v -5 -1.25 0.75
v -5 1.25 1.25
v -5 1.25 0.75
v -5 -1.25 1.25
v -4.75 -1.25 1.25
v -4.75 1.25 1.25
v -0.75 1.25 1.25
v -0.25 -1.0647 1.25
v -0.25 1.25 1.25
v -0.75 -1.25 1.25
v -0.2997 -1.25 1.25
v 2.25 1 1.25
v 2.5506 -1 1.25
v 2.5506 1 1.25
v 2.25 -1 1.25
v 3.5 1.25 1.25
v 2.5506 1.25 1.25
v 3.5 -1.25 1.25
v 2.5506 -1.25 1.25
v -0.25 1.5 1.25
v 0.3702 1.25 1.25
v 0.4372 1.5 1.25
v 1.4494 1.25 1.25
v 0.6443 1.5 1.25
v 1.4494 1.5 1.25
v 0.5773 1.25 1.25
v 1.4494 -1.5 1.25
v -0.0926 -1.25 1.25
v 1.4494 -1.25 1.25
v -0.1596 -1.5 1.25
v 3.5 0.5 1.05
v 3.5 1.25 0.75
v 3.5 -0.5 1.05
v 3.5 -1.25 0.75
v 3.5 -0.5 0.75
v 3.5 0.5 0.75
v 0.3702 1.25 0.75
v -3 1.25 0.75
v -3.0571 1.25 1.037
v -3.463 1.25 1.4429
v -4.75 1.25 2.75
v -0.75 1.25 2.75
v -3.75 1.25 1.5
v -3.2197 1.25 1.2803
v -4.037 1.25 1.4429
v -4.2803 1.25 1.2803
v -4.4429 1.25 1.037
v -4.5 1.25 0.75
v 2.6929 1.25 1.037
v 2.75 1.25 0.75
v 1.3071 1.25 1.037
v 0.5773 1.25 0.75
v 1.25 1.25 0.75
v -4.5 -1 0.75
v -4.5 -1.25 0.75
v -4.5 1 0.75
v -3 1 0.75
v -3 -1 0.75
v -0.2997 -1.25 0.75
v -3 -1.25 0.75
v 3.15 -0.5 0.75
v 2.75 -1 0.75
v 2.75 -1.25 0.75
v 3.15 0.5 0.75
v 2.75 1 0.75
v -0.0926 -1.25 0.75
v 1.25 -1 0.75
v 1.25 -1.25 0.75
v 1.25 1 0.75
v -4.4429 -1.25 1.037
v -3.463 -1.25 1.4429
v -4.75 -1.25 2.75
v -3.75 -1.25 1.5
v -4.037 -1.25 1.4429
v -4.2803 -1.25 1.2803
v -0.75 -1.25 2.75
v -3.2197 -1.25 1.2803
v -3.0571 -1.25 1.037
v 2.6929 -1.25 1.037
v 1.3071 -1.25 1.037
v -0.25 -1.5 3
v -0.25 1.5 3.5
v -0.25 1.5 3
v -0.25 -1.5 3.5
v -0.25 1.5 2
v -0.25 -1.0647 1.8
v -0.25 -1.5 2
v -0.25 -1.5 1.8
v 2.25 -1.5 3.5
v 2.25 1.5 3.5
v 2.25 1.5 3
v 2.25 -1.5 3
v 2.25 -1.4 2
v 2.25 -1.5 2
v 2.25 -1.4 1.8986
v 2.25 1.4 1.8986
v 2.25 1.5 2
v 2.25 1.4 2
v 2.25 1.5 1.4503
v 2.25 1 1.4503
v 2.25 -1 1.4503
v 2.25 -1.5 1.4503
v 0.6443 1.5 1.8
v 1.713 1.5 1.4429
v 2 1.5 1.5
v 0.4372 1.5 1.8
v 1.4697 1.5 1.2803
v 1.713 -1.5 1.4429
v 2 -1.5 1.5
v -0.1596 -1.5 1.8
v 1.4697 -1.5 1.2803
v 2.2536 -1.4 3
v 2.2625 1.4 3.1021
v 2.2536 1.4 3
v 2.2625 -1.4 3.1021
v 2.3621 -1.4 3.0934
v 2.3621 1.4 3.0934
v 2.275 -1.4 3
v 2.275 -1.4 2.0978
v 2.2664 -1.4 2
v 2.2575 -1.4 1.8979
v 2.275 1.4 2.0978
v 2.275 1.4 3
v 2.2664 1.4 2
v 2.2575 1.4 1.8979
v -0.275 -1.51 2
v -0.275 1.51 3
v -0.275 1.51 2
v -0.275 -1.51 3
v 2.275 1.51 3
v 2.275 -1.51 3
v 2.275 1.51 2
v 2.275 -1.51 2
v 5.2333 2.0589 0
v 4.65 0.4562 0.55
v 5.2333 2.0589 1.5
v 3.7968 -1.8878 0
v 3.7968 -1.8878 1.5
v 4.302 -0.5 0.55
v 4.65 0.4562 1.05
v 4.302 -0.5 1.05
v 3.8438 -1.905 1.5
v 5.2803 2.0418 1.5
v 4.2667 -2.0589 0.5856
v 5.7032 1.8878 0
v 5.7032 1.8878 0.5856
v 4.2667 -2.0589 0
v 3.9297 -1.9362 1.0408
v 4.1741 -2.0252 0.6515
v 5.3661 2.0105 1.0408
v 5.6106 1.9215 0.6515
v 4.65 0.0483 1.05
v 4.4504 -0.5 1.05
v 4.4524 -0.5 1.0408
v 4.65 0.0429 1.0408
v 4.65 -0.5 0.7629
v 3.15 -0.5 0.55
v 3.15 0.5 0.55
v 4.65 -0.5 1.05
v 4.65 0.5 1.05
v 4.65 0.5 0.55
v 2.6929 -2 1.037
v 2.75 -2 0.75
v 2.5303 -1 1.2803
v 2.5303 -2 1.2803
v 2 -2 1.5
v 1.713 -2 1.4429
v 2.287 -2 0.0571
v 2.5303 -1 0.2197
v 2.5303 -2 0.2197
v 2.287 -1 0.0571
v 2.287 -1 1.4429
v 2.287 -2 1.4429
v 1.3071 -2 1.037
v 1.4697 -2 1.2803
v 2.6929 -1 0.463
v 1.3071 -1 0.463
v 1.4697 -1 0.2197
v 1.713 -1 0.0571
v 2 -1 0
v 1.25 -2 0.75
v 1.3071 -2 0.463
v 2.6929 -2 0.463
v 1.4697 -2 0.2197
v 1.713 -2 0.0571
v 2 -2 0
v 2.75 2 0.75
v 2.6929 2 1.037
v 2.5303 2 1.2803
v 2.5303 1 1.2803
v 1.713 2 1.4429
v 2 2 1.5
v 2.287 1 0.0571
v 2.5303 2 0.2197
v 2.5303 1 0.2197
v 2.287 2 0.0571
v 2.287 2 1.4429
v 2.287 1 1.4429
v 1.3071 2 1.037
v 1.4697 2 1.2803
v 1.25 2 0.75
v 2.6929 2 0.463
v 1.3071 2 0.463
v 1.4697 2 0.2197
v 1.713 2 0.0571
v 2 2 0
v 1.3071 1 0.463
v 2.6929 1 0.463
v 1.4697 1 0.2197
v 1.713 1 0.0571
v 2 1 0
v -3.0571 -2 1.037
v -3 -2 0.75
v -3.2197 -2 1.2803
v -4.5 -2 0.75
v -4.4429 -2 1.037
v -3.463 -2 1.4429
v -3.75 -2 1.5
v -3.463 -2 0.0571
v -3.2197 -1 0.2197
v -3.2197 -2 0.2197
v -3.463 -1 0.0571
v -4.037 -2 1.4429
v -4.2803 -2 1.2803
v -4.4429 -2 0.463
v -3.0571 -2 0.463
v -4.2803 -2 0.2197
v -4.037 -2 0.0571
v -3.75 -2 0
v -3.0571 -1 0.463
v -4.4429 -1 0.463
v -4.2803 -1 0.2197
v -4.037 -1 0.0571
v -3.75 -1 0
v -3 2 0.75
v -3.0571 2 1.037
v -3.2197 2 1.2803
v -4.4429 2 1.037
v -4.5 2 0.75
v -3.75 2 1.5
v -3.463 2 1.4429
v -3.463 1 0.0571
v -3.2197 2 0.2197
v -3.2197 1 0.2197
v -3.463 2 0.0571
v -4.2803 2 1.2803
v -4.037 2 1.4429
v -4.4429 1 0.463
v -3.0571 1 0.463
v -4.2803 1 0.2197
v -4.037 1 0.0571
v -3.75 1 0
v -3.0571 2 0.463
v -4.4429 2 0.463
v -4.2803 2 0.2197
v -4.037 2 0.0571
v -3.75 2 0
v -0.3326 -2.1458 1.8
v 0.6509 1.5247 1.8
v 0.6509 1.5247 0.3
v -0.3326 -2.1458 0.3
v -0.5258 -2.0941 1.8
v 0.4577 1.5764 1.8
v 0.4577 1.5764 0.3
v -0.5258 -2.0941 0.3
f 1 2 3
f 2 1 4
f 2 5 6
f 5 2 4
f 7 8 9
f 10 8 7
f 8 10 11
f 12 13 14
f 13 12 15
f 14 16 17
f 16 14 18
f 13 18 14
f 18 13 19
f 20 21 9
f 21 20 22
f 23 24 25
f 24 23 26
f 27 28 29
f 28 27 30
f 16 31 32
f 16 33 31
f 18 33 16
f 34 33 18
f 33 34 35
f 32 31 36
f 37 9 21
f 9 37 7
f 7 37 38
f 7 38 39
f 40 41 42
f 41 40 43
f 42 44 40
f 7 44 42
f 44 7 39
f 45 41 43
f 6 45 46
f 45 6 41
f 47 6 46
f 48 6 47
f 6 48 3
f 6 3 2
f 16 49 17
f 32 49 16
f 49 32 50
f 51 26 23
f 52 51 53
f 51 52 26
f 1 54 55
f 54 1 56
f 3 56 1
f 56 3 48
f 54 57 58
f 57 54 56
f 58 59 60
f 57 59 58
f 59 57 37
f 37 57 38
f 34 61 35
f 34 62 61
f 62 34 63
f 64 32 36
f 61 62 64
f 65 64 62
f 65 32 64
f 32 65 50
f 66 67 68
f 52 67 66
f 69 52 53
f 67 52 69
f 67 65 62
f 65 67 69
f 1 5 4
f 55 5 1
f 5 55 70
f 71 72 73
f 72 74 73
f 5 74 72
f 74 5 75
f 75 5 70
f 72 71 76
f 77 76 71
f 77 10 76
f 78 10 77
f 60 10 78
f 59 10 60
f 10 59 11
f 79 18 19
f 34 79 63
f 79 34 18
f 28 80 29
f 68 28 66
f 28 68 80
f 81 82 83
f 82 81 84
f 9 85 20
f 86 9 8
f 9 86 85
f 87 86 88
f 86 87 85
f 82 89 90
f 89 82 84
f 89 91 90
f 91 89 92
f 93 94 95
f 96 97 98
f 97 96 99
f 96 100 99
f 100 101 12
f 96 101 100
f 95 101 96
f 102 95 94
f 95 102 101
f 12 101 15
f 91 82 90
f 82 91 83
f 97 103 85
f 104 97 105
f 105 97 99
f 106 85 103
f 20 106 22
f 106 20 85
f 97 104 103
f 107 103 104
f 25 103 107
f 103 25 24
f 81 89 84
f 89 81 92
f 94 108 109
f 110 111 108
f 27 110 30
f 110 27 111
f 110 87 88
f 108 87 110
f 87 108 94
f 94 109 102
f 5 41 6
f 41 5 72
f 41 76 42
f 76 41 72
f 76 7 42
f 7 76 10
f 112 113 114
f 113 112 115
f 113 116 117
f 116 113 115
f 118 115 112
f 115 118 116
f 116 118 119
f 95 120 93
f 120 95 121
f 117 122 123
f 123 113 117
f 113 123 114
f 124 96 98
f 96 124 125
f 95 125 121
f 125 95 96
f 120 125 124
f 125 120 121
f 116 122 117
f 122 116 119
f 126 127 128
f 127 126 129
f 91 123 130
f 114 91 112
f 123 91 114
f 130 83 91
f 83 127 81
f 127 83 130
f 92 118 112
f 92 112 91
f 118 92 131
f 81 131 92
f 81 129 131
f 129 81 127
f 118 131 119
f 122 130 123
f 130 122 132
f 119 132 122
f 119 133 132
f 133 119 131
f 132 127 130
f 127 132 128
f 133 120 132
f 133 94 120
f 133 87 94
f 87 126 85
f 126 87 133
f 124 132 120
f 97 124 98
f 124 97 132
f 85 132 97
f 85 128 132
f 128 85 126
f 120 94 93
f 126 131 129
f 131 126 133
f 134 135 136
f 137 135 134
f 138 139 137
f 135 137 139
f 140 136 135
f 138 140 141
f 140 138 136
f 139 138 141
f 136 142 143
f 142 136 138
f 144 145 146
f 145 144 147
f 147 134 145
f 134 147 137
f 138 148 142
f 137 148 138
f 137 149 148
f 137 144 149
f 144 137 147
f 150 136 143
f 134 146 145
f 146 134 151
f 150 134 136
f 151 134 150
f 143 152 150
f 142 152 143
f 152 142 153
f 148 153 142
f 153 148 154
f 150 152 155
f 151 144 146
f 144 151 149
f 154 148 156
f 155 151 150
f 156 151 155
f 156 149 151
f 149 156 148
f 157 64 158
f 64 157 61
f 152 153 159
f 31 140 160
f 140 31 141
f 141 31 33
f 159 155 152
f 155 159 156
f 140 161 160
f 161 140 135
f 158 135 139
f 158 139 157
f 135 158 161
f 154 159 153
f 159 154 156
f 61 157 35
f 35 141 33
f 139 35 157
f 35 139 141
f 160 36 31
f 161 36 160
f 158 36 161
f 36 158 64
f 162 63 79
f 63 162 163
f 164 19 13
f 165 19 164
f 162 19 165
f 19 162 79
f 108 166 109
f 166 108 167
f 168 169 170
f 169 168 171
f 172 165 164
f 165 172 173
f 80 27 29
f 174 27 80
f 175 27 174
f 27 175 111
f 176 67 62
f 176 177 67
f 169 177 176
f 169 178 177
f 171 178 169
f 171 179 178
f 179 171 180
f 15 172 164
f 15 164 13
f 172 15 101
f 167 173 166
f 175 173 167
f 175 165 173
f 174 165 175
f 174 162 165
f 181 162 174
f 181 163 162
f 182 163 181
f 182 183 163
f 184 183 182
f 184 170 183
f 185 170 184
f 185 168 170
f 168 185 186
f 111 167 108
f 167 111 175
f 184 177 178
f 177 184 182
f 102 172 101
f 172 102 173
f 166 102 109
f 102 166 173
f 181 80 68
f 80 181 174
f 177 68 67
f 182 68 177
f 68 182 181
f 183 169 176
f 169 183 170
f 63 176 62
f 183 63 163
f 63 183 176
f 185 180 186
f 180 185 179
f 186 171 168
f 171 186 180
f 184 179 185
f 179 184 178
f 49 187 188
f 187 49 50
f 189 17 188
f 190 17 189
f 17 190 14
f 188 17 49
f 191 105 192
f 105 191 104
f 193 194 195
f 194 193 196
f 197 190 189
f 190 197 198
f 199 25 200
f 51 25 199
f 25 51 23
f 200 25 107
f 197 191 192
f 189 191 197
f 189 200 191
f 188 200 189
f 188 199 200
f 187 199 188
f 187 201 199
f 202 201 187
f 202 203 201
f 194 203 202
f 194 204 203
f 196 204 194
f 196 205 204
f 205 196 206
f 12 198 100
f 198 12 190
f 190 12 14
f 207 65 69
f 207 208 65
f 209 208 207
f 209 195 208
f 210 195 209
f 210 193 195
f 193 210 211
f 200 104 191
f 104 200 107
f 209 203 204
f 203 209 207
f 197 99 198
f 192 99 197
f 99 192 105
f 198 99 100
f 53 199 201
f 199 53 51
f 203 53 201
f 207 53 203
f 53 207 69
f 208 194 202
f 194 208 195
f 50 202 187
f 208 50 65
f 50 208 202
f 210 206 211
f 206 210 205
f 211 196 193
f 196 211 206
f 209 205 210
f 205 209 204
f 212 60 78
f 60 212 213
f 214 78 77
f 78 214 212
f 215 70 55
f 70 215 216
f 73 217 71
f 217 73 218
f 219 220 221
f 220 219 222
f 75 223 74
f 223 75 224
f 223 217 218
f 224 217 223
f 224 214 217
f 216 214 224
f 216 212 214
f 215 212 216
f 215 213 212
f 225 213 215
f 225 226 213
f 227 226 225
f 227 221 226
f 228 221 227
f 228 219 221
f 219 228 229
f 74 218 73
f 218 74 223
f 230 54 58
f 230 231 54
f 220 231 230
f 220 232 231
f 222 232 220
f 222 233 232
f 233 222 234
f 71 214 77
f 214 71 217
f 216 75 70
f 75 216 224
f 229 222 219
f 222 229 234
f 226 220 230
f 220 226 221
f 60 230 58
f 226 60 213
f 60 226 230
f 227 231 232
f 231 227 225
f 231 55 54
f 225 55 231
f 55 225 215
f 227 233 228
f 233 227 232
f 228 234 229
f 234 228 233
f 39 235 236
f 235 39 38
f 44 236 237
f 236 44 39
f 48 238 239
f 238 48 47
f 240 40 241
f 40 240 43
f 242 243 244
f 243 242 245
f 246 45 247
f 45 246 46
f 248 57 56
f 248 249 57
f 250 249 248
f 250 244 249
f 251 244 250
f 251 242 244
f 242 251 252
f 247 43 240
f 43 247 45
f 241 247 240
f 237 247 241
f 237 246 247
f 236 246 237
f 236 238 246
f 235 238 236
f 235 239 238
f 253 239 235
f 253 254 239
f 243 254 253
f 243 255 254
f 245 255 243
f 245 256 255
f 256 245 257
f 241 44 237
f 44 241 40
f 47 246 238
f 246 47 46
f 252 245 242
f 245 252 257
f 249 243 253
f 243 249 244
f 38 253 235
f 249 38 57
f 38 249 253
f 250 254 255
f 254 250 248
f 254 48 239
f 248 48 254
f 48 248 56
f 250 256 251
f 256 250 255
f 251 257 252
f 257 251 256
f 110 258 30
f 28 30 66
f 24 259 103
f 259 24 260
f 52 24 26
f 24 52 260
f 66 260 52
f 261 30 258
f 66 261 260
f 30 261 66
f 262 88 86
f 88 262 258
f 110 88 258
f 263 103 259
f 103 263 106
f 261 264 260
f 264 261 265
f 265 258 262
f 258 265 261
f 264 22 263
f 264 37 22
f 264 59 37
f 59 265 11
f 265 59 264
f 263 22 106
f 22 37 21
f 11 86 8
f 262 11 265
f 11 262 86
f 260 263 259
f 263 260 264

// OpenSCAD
$fn = 16;

module airport_snow_plow() {
   
    translate([-0.5, 0, 0]) {
        
        //main
        color("orange") {
            translate([-0.25, 0, 1])
                cube([8.5, 2.5, 0.5], center=true);

            // cab
            translate([1.5, 0, 2.375])
                cube([2.5, 3, 2.25], center=true);

            translate([-2.25, 0, 2])
                cube([4, 2.5, 1.5], center=true);
        }
        
        // Windshield
        color("lightskyblue") {
            translate([2.76, 0, 2.5])
                rotate([0, 5, 0])
                cube([0.1, 2.8, 1.2], center=true);
                
            // Side Windows
            translate([1.5, 0, 2.5])
                cube([2.55, 3.02, 1], center=true);
        }

        // PLOW BLADE
        color("goldenrod") {
            translate([5.25, 0, 0.75])
            rotate([0, 0, -20]) // Angled to cast snow to the side
            difference() {
                cube([0.5, 4.2, 1.5], center=true);
                
                translate([1, 0, 0.75])
                    rotate([90, 0, 0])
                    cylinder(h=4.5, r=1.2, center=true);
            }
            
            color("darkgray")
            translate([4.4, 0, 0.8])
                cube([1.5, 1, 0.5], center=true);
        }

        color("goldenrod") {
            // Cylindrical brush mechanism suspended centrally
            translate([-0.5, 0, 0.55])
                rotate([0, 90, -15]) // Angled horizontally like a runway sweeper

                
            color("darkgray")
            translate([-0.5, 0, 1.1])
                cube([1.5, 3.8, 0.2], center=true);
        }

        // wheels
        color("darkslategray") {
            // Front Right
            translate([2.5, -1.5, 0.75])
                rotate([90, 0, 0])
                cylinder(h=1, r=0.75, center=true);
                
            // Front Left
            translate([2.5, 1.5, 0.75])
                rotate([90, 0, 0])
                cylinder(h=1, r=0.75, center=true);
                
            // Rear Right
            translate([-3.25, -1.5, 0.75])
                rotate([90, 0, 0])
                cylinder(h=1, r=0.75, center=true);
                
            // Rear Left
            translate([-3.25, 1.5, 0.75])
                rotate([90, 0, 0])
                cylinder(h=1, r=0.75, center=true);
        }
    }
}

airport_snow_plow();
